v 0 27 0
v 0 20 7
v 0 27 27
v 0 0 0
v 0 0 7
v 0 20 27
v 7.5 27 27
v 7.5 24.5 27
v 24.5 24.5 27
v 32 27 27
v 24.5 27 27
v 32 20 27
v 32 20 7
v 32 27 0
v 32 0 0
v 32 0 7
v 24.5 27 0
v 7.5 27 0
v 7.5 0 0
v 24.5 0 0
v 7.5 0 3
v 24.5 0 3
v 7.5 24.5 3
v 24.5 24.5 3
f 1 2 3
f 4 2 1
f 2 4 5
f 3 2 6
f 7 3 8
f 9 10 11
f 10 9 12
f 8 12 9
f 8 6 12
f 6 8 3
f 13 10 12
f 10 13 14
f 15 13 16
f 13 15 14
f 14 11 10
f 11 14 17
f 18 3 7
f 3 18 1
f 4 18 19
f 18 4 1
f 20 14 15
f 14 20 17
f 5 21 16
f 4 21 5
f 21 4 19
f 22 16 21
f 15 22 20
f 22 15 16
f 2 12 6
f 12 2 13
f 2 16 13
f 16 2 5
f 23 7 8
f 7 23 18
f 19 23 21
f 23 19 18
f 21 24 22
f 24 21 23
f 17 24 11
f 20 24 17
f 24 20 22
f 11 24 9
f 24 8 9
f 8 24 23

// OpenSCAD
module screw (x, y)
{
  translate ([x, y, 0]) {
    cylinder (h=10, d=4.0, $fn=16, center=true);
  }
  translate ([x, y, 6]) {
    cylinder (h=4.5, d=7.2, $fn=16, center=true);
  }
}

translate ([0, 0, 0]) {
  difference () {
     // Floor
    cube ([32, 27, 27]);

    // Remove cube to create vertical
    translate ([0, 0, 7]) {
      cube ([32, 20, 27]);
    }
    
    // Tie-wrap
    translate ([7.5, 0, 0]) {
      cube ([17, 27, 3]);
    }
    translate ([7.5, 24.5, 0]) {
      cube ([17, 3, 30]);
    }
  } 
}

  
